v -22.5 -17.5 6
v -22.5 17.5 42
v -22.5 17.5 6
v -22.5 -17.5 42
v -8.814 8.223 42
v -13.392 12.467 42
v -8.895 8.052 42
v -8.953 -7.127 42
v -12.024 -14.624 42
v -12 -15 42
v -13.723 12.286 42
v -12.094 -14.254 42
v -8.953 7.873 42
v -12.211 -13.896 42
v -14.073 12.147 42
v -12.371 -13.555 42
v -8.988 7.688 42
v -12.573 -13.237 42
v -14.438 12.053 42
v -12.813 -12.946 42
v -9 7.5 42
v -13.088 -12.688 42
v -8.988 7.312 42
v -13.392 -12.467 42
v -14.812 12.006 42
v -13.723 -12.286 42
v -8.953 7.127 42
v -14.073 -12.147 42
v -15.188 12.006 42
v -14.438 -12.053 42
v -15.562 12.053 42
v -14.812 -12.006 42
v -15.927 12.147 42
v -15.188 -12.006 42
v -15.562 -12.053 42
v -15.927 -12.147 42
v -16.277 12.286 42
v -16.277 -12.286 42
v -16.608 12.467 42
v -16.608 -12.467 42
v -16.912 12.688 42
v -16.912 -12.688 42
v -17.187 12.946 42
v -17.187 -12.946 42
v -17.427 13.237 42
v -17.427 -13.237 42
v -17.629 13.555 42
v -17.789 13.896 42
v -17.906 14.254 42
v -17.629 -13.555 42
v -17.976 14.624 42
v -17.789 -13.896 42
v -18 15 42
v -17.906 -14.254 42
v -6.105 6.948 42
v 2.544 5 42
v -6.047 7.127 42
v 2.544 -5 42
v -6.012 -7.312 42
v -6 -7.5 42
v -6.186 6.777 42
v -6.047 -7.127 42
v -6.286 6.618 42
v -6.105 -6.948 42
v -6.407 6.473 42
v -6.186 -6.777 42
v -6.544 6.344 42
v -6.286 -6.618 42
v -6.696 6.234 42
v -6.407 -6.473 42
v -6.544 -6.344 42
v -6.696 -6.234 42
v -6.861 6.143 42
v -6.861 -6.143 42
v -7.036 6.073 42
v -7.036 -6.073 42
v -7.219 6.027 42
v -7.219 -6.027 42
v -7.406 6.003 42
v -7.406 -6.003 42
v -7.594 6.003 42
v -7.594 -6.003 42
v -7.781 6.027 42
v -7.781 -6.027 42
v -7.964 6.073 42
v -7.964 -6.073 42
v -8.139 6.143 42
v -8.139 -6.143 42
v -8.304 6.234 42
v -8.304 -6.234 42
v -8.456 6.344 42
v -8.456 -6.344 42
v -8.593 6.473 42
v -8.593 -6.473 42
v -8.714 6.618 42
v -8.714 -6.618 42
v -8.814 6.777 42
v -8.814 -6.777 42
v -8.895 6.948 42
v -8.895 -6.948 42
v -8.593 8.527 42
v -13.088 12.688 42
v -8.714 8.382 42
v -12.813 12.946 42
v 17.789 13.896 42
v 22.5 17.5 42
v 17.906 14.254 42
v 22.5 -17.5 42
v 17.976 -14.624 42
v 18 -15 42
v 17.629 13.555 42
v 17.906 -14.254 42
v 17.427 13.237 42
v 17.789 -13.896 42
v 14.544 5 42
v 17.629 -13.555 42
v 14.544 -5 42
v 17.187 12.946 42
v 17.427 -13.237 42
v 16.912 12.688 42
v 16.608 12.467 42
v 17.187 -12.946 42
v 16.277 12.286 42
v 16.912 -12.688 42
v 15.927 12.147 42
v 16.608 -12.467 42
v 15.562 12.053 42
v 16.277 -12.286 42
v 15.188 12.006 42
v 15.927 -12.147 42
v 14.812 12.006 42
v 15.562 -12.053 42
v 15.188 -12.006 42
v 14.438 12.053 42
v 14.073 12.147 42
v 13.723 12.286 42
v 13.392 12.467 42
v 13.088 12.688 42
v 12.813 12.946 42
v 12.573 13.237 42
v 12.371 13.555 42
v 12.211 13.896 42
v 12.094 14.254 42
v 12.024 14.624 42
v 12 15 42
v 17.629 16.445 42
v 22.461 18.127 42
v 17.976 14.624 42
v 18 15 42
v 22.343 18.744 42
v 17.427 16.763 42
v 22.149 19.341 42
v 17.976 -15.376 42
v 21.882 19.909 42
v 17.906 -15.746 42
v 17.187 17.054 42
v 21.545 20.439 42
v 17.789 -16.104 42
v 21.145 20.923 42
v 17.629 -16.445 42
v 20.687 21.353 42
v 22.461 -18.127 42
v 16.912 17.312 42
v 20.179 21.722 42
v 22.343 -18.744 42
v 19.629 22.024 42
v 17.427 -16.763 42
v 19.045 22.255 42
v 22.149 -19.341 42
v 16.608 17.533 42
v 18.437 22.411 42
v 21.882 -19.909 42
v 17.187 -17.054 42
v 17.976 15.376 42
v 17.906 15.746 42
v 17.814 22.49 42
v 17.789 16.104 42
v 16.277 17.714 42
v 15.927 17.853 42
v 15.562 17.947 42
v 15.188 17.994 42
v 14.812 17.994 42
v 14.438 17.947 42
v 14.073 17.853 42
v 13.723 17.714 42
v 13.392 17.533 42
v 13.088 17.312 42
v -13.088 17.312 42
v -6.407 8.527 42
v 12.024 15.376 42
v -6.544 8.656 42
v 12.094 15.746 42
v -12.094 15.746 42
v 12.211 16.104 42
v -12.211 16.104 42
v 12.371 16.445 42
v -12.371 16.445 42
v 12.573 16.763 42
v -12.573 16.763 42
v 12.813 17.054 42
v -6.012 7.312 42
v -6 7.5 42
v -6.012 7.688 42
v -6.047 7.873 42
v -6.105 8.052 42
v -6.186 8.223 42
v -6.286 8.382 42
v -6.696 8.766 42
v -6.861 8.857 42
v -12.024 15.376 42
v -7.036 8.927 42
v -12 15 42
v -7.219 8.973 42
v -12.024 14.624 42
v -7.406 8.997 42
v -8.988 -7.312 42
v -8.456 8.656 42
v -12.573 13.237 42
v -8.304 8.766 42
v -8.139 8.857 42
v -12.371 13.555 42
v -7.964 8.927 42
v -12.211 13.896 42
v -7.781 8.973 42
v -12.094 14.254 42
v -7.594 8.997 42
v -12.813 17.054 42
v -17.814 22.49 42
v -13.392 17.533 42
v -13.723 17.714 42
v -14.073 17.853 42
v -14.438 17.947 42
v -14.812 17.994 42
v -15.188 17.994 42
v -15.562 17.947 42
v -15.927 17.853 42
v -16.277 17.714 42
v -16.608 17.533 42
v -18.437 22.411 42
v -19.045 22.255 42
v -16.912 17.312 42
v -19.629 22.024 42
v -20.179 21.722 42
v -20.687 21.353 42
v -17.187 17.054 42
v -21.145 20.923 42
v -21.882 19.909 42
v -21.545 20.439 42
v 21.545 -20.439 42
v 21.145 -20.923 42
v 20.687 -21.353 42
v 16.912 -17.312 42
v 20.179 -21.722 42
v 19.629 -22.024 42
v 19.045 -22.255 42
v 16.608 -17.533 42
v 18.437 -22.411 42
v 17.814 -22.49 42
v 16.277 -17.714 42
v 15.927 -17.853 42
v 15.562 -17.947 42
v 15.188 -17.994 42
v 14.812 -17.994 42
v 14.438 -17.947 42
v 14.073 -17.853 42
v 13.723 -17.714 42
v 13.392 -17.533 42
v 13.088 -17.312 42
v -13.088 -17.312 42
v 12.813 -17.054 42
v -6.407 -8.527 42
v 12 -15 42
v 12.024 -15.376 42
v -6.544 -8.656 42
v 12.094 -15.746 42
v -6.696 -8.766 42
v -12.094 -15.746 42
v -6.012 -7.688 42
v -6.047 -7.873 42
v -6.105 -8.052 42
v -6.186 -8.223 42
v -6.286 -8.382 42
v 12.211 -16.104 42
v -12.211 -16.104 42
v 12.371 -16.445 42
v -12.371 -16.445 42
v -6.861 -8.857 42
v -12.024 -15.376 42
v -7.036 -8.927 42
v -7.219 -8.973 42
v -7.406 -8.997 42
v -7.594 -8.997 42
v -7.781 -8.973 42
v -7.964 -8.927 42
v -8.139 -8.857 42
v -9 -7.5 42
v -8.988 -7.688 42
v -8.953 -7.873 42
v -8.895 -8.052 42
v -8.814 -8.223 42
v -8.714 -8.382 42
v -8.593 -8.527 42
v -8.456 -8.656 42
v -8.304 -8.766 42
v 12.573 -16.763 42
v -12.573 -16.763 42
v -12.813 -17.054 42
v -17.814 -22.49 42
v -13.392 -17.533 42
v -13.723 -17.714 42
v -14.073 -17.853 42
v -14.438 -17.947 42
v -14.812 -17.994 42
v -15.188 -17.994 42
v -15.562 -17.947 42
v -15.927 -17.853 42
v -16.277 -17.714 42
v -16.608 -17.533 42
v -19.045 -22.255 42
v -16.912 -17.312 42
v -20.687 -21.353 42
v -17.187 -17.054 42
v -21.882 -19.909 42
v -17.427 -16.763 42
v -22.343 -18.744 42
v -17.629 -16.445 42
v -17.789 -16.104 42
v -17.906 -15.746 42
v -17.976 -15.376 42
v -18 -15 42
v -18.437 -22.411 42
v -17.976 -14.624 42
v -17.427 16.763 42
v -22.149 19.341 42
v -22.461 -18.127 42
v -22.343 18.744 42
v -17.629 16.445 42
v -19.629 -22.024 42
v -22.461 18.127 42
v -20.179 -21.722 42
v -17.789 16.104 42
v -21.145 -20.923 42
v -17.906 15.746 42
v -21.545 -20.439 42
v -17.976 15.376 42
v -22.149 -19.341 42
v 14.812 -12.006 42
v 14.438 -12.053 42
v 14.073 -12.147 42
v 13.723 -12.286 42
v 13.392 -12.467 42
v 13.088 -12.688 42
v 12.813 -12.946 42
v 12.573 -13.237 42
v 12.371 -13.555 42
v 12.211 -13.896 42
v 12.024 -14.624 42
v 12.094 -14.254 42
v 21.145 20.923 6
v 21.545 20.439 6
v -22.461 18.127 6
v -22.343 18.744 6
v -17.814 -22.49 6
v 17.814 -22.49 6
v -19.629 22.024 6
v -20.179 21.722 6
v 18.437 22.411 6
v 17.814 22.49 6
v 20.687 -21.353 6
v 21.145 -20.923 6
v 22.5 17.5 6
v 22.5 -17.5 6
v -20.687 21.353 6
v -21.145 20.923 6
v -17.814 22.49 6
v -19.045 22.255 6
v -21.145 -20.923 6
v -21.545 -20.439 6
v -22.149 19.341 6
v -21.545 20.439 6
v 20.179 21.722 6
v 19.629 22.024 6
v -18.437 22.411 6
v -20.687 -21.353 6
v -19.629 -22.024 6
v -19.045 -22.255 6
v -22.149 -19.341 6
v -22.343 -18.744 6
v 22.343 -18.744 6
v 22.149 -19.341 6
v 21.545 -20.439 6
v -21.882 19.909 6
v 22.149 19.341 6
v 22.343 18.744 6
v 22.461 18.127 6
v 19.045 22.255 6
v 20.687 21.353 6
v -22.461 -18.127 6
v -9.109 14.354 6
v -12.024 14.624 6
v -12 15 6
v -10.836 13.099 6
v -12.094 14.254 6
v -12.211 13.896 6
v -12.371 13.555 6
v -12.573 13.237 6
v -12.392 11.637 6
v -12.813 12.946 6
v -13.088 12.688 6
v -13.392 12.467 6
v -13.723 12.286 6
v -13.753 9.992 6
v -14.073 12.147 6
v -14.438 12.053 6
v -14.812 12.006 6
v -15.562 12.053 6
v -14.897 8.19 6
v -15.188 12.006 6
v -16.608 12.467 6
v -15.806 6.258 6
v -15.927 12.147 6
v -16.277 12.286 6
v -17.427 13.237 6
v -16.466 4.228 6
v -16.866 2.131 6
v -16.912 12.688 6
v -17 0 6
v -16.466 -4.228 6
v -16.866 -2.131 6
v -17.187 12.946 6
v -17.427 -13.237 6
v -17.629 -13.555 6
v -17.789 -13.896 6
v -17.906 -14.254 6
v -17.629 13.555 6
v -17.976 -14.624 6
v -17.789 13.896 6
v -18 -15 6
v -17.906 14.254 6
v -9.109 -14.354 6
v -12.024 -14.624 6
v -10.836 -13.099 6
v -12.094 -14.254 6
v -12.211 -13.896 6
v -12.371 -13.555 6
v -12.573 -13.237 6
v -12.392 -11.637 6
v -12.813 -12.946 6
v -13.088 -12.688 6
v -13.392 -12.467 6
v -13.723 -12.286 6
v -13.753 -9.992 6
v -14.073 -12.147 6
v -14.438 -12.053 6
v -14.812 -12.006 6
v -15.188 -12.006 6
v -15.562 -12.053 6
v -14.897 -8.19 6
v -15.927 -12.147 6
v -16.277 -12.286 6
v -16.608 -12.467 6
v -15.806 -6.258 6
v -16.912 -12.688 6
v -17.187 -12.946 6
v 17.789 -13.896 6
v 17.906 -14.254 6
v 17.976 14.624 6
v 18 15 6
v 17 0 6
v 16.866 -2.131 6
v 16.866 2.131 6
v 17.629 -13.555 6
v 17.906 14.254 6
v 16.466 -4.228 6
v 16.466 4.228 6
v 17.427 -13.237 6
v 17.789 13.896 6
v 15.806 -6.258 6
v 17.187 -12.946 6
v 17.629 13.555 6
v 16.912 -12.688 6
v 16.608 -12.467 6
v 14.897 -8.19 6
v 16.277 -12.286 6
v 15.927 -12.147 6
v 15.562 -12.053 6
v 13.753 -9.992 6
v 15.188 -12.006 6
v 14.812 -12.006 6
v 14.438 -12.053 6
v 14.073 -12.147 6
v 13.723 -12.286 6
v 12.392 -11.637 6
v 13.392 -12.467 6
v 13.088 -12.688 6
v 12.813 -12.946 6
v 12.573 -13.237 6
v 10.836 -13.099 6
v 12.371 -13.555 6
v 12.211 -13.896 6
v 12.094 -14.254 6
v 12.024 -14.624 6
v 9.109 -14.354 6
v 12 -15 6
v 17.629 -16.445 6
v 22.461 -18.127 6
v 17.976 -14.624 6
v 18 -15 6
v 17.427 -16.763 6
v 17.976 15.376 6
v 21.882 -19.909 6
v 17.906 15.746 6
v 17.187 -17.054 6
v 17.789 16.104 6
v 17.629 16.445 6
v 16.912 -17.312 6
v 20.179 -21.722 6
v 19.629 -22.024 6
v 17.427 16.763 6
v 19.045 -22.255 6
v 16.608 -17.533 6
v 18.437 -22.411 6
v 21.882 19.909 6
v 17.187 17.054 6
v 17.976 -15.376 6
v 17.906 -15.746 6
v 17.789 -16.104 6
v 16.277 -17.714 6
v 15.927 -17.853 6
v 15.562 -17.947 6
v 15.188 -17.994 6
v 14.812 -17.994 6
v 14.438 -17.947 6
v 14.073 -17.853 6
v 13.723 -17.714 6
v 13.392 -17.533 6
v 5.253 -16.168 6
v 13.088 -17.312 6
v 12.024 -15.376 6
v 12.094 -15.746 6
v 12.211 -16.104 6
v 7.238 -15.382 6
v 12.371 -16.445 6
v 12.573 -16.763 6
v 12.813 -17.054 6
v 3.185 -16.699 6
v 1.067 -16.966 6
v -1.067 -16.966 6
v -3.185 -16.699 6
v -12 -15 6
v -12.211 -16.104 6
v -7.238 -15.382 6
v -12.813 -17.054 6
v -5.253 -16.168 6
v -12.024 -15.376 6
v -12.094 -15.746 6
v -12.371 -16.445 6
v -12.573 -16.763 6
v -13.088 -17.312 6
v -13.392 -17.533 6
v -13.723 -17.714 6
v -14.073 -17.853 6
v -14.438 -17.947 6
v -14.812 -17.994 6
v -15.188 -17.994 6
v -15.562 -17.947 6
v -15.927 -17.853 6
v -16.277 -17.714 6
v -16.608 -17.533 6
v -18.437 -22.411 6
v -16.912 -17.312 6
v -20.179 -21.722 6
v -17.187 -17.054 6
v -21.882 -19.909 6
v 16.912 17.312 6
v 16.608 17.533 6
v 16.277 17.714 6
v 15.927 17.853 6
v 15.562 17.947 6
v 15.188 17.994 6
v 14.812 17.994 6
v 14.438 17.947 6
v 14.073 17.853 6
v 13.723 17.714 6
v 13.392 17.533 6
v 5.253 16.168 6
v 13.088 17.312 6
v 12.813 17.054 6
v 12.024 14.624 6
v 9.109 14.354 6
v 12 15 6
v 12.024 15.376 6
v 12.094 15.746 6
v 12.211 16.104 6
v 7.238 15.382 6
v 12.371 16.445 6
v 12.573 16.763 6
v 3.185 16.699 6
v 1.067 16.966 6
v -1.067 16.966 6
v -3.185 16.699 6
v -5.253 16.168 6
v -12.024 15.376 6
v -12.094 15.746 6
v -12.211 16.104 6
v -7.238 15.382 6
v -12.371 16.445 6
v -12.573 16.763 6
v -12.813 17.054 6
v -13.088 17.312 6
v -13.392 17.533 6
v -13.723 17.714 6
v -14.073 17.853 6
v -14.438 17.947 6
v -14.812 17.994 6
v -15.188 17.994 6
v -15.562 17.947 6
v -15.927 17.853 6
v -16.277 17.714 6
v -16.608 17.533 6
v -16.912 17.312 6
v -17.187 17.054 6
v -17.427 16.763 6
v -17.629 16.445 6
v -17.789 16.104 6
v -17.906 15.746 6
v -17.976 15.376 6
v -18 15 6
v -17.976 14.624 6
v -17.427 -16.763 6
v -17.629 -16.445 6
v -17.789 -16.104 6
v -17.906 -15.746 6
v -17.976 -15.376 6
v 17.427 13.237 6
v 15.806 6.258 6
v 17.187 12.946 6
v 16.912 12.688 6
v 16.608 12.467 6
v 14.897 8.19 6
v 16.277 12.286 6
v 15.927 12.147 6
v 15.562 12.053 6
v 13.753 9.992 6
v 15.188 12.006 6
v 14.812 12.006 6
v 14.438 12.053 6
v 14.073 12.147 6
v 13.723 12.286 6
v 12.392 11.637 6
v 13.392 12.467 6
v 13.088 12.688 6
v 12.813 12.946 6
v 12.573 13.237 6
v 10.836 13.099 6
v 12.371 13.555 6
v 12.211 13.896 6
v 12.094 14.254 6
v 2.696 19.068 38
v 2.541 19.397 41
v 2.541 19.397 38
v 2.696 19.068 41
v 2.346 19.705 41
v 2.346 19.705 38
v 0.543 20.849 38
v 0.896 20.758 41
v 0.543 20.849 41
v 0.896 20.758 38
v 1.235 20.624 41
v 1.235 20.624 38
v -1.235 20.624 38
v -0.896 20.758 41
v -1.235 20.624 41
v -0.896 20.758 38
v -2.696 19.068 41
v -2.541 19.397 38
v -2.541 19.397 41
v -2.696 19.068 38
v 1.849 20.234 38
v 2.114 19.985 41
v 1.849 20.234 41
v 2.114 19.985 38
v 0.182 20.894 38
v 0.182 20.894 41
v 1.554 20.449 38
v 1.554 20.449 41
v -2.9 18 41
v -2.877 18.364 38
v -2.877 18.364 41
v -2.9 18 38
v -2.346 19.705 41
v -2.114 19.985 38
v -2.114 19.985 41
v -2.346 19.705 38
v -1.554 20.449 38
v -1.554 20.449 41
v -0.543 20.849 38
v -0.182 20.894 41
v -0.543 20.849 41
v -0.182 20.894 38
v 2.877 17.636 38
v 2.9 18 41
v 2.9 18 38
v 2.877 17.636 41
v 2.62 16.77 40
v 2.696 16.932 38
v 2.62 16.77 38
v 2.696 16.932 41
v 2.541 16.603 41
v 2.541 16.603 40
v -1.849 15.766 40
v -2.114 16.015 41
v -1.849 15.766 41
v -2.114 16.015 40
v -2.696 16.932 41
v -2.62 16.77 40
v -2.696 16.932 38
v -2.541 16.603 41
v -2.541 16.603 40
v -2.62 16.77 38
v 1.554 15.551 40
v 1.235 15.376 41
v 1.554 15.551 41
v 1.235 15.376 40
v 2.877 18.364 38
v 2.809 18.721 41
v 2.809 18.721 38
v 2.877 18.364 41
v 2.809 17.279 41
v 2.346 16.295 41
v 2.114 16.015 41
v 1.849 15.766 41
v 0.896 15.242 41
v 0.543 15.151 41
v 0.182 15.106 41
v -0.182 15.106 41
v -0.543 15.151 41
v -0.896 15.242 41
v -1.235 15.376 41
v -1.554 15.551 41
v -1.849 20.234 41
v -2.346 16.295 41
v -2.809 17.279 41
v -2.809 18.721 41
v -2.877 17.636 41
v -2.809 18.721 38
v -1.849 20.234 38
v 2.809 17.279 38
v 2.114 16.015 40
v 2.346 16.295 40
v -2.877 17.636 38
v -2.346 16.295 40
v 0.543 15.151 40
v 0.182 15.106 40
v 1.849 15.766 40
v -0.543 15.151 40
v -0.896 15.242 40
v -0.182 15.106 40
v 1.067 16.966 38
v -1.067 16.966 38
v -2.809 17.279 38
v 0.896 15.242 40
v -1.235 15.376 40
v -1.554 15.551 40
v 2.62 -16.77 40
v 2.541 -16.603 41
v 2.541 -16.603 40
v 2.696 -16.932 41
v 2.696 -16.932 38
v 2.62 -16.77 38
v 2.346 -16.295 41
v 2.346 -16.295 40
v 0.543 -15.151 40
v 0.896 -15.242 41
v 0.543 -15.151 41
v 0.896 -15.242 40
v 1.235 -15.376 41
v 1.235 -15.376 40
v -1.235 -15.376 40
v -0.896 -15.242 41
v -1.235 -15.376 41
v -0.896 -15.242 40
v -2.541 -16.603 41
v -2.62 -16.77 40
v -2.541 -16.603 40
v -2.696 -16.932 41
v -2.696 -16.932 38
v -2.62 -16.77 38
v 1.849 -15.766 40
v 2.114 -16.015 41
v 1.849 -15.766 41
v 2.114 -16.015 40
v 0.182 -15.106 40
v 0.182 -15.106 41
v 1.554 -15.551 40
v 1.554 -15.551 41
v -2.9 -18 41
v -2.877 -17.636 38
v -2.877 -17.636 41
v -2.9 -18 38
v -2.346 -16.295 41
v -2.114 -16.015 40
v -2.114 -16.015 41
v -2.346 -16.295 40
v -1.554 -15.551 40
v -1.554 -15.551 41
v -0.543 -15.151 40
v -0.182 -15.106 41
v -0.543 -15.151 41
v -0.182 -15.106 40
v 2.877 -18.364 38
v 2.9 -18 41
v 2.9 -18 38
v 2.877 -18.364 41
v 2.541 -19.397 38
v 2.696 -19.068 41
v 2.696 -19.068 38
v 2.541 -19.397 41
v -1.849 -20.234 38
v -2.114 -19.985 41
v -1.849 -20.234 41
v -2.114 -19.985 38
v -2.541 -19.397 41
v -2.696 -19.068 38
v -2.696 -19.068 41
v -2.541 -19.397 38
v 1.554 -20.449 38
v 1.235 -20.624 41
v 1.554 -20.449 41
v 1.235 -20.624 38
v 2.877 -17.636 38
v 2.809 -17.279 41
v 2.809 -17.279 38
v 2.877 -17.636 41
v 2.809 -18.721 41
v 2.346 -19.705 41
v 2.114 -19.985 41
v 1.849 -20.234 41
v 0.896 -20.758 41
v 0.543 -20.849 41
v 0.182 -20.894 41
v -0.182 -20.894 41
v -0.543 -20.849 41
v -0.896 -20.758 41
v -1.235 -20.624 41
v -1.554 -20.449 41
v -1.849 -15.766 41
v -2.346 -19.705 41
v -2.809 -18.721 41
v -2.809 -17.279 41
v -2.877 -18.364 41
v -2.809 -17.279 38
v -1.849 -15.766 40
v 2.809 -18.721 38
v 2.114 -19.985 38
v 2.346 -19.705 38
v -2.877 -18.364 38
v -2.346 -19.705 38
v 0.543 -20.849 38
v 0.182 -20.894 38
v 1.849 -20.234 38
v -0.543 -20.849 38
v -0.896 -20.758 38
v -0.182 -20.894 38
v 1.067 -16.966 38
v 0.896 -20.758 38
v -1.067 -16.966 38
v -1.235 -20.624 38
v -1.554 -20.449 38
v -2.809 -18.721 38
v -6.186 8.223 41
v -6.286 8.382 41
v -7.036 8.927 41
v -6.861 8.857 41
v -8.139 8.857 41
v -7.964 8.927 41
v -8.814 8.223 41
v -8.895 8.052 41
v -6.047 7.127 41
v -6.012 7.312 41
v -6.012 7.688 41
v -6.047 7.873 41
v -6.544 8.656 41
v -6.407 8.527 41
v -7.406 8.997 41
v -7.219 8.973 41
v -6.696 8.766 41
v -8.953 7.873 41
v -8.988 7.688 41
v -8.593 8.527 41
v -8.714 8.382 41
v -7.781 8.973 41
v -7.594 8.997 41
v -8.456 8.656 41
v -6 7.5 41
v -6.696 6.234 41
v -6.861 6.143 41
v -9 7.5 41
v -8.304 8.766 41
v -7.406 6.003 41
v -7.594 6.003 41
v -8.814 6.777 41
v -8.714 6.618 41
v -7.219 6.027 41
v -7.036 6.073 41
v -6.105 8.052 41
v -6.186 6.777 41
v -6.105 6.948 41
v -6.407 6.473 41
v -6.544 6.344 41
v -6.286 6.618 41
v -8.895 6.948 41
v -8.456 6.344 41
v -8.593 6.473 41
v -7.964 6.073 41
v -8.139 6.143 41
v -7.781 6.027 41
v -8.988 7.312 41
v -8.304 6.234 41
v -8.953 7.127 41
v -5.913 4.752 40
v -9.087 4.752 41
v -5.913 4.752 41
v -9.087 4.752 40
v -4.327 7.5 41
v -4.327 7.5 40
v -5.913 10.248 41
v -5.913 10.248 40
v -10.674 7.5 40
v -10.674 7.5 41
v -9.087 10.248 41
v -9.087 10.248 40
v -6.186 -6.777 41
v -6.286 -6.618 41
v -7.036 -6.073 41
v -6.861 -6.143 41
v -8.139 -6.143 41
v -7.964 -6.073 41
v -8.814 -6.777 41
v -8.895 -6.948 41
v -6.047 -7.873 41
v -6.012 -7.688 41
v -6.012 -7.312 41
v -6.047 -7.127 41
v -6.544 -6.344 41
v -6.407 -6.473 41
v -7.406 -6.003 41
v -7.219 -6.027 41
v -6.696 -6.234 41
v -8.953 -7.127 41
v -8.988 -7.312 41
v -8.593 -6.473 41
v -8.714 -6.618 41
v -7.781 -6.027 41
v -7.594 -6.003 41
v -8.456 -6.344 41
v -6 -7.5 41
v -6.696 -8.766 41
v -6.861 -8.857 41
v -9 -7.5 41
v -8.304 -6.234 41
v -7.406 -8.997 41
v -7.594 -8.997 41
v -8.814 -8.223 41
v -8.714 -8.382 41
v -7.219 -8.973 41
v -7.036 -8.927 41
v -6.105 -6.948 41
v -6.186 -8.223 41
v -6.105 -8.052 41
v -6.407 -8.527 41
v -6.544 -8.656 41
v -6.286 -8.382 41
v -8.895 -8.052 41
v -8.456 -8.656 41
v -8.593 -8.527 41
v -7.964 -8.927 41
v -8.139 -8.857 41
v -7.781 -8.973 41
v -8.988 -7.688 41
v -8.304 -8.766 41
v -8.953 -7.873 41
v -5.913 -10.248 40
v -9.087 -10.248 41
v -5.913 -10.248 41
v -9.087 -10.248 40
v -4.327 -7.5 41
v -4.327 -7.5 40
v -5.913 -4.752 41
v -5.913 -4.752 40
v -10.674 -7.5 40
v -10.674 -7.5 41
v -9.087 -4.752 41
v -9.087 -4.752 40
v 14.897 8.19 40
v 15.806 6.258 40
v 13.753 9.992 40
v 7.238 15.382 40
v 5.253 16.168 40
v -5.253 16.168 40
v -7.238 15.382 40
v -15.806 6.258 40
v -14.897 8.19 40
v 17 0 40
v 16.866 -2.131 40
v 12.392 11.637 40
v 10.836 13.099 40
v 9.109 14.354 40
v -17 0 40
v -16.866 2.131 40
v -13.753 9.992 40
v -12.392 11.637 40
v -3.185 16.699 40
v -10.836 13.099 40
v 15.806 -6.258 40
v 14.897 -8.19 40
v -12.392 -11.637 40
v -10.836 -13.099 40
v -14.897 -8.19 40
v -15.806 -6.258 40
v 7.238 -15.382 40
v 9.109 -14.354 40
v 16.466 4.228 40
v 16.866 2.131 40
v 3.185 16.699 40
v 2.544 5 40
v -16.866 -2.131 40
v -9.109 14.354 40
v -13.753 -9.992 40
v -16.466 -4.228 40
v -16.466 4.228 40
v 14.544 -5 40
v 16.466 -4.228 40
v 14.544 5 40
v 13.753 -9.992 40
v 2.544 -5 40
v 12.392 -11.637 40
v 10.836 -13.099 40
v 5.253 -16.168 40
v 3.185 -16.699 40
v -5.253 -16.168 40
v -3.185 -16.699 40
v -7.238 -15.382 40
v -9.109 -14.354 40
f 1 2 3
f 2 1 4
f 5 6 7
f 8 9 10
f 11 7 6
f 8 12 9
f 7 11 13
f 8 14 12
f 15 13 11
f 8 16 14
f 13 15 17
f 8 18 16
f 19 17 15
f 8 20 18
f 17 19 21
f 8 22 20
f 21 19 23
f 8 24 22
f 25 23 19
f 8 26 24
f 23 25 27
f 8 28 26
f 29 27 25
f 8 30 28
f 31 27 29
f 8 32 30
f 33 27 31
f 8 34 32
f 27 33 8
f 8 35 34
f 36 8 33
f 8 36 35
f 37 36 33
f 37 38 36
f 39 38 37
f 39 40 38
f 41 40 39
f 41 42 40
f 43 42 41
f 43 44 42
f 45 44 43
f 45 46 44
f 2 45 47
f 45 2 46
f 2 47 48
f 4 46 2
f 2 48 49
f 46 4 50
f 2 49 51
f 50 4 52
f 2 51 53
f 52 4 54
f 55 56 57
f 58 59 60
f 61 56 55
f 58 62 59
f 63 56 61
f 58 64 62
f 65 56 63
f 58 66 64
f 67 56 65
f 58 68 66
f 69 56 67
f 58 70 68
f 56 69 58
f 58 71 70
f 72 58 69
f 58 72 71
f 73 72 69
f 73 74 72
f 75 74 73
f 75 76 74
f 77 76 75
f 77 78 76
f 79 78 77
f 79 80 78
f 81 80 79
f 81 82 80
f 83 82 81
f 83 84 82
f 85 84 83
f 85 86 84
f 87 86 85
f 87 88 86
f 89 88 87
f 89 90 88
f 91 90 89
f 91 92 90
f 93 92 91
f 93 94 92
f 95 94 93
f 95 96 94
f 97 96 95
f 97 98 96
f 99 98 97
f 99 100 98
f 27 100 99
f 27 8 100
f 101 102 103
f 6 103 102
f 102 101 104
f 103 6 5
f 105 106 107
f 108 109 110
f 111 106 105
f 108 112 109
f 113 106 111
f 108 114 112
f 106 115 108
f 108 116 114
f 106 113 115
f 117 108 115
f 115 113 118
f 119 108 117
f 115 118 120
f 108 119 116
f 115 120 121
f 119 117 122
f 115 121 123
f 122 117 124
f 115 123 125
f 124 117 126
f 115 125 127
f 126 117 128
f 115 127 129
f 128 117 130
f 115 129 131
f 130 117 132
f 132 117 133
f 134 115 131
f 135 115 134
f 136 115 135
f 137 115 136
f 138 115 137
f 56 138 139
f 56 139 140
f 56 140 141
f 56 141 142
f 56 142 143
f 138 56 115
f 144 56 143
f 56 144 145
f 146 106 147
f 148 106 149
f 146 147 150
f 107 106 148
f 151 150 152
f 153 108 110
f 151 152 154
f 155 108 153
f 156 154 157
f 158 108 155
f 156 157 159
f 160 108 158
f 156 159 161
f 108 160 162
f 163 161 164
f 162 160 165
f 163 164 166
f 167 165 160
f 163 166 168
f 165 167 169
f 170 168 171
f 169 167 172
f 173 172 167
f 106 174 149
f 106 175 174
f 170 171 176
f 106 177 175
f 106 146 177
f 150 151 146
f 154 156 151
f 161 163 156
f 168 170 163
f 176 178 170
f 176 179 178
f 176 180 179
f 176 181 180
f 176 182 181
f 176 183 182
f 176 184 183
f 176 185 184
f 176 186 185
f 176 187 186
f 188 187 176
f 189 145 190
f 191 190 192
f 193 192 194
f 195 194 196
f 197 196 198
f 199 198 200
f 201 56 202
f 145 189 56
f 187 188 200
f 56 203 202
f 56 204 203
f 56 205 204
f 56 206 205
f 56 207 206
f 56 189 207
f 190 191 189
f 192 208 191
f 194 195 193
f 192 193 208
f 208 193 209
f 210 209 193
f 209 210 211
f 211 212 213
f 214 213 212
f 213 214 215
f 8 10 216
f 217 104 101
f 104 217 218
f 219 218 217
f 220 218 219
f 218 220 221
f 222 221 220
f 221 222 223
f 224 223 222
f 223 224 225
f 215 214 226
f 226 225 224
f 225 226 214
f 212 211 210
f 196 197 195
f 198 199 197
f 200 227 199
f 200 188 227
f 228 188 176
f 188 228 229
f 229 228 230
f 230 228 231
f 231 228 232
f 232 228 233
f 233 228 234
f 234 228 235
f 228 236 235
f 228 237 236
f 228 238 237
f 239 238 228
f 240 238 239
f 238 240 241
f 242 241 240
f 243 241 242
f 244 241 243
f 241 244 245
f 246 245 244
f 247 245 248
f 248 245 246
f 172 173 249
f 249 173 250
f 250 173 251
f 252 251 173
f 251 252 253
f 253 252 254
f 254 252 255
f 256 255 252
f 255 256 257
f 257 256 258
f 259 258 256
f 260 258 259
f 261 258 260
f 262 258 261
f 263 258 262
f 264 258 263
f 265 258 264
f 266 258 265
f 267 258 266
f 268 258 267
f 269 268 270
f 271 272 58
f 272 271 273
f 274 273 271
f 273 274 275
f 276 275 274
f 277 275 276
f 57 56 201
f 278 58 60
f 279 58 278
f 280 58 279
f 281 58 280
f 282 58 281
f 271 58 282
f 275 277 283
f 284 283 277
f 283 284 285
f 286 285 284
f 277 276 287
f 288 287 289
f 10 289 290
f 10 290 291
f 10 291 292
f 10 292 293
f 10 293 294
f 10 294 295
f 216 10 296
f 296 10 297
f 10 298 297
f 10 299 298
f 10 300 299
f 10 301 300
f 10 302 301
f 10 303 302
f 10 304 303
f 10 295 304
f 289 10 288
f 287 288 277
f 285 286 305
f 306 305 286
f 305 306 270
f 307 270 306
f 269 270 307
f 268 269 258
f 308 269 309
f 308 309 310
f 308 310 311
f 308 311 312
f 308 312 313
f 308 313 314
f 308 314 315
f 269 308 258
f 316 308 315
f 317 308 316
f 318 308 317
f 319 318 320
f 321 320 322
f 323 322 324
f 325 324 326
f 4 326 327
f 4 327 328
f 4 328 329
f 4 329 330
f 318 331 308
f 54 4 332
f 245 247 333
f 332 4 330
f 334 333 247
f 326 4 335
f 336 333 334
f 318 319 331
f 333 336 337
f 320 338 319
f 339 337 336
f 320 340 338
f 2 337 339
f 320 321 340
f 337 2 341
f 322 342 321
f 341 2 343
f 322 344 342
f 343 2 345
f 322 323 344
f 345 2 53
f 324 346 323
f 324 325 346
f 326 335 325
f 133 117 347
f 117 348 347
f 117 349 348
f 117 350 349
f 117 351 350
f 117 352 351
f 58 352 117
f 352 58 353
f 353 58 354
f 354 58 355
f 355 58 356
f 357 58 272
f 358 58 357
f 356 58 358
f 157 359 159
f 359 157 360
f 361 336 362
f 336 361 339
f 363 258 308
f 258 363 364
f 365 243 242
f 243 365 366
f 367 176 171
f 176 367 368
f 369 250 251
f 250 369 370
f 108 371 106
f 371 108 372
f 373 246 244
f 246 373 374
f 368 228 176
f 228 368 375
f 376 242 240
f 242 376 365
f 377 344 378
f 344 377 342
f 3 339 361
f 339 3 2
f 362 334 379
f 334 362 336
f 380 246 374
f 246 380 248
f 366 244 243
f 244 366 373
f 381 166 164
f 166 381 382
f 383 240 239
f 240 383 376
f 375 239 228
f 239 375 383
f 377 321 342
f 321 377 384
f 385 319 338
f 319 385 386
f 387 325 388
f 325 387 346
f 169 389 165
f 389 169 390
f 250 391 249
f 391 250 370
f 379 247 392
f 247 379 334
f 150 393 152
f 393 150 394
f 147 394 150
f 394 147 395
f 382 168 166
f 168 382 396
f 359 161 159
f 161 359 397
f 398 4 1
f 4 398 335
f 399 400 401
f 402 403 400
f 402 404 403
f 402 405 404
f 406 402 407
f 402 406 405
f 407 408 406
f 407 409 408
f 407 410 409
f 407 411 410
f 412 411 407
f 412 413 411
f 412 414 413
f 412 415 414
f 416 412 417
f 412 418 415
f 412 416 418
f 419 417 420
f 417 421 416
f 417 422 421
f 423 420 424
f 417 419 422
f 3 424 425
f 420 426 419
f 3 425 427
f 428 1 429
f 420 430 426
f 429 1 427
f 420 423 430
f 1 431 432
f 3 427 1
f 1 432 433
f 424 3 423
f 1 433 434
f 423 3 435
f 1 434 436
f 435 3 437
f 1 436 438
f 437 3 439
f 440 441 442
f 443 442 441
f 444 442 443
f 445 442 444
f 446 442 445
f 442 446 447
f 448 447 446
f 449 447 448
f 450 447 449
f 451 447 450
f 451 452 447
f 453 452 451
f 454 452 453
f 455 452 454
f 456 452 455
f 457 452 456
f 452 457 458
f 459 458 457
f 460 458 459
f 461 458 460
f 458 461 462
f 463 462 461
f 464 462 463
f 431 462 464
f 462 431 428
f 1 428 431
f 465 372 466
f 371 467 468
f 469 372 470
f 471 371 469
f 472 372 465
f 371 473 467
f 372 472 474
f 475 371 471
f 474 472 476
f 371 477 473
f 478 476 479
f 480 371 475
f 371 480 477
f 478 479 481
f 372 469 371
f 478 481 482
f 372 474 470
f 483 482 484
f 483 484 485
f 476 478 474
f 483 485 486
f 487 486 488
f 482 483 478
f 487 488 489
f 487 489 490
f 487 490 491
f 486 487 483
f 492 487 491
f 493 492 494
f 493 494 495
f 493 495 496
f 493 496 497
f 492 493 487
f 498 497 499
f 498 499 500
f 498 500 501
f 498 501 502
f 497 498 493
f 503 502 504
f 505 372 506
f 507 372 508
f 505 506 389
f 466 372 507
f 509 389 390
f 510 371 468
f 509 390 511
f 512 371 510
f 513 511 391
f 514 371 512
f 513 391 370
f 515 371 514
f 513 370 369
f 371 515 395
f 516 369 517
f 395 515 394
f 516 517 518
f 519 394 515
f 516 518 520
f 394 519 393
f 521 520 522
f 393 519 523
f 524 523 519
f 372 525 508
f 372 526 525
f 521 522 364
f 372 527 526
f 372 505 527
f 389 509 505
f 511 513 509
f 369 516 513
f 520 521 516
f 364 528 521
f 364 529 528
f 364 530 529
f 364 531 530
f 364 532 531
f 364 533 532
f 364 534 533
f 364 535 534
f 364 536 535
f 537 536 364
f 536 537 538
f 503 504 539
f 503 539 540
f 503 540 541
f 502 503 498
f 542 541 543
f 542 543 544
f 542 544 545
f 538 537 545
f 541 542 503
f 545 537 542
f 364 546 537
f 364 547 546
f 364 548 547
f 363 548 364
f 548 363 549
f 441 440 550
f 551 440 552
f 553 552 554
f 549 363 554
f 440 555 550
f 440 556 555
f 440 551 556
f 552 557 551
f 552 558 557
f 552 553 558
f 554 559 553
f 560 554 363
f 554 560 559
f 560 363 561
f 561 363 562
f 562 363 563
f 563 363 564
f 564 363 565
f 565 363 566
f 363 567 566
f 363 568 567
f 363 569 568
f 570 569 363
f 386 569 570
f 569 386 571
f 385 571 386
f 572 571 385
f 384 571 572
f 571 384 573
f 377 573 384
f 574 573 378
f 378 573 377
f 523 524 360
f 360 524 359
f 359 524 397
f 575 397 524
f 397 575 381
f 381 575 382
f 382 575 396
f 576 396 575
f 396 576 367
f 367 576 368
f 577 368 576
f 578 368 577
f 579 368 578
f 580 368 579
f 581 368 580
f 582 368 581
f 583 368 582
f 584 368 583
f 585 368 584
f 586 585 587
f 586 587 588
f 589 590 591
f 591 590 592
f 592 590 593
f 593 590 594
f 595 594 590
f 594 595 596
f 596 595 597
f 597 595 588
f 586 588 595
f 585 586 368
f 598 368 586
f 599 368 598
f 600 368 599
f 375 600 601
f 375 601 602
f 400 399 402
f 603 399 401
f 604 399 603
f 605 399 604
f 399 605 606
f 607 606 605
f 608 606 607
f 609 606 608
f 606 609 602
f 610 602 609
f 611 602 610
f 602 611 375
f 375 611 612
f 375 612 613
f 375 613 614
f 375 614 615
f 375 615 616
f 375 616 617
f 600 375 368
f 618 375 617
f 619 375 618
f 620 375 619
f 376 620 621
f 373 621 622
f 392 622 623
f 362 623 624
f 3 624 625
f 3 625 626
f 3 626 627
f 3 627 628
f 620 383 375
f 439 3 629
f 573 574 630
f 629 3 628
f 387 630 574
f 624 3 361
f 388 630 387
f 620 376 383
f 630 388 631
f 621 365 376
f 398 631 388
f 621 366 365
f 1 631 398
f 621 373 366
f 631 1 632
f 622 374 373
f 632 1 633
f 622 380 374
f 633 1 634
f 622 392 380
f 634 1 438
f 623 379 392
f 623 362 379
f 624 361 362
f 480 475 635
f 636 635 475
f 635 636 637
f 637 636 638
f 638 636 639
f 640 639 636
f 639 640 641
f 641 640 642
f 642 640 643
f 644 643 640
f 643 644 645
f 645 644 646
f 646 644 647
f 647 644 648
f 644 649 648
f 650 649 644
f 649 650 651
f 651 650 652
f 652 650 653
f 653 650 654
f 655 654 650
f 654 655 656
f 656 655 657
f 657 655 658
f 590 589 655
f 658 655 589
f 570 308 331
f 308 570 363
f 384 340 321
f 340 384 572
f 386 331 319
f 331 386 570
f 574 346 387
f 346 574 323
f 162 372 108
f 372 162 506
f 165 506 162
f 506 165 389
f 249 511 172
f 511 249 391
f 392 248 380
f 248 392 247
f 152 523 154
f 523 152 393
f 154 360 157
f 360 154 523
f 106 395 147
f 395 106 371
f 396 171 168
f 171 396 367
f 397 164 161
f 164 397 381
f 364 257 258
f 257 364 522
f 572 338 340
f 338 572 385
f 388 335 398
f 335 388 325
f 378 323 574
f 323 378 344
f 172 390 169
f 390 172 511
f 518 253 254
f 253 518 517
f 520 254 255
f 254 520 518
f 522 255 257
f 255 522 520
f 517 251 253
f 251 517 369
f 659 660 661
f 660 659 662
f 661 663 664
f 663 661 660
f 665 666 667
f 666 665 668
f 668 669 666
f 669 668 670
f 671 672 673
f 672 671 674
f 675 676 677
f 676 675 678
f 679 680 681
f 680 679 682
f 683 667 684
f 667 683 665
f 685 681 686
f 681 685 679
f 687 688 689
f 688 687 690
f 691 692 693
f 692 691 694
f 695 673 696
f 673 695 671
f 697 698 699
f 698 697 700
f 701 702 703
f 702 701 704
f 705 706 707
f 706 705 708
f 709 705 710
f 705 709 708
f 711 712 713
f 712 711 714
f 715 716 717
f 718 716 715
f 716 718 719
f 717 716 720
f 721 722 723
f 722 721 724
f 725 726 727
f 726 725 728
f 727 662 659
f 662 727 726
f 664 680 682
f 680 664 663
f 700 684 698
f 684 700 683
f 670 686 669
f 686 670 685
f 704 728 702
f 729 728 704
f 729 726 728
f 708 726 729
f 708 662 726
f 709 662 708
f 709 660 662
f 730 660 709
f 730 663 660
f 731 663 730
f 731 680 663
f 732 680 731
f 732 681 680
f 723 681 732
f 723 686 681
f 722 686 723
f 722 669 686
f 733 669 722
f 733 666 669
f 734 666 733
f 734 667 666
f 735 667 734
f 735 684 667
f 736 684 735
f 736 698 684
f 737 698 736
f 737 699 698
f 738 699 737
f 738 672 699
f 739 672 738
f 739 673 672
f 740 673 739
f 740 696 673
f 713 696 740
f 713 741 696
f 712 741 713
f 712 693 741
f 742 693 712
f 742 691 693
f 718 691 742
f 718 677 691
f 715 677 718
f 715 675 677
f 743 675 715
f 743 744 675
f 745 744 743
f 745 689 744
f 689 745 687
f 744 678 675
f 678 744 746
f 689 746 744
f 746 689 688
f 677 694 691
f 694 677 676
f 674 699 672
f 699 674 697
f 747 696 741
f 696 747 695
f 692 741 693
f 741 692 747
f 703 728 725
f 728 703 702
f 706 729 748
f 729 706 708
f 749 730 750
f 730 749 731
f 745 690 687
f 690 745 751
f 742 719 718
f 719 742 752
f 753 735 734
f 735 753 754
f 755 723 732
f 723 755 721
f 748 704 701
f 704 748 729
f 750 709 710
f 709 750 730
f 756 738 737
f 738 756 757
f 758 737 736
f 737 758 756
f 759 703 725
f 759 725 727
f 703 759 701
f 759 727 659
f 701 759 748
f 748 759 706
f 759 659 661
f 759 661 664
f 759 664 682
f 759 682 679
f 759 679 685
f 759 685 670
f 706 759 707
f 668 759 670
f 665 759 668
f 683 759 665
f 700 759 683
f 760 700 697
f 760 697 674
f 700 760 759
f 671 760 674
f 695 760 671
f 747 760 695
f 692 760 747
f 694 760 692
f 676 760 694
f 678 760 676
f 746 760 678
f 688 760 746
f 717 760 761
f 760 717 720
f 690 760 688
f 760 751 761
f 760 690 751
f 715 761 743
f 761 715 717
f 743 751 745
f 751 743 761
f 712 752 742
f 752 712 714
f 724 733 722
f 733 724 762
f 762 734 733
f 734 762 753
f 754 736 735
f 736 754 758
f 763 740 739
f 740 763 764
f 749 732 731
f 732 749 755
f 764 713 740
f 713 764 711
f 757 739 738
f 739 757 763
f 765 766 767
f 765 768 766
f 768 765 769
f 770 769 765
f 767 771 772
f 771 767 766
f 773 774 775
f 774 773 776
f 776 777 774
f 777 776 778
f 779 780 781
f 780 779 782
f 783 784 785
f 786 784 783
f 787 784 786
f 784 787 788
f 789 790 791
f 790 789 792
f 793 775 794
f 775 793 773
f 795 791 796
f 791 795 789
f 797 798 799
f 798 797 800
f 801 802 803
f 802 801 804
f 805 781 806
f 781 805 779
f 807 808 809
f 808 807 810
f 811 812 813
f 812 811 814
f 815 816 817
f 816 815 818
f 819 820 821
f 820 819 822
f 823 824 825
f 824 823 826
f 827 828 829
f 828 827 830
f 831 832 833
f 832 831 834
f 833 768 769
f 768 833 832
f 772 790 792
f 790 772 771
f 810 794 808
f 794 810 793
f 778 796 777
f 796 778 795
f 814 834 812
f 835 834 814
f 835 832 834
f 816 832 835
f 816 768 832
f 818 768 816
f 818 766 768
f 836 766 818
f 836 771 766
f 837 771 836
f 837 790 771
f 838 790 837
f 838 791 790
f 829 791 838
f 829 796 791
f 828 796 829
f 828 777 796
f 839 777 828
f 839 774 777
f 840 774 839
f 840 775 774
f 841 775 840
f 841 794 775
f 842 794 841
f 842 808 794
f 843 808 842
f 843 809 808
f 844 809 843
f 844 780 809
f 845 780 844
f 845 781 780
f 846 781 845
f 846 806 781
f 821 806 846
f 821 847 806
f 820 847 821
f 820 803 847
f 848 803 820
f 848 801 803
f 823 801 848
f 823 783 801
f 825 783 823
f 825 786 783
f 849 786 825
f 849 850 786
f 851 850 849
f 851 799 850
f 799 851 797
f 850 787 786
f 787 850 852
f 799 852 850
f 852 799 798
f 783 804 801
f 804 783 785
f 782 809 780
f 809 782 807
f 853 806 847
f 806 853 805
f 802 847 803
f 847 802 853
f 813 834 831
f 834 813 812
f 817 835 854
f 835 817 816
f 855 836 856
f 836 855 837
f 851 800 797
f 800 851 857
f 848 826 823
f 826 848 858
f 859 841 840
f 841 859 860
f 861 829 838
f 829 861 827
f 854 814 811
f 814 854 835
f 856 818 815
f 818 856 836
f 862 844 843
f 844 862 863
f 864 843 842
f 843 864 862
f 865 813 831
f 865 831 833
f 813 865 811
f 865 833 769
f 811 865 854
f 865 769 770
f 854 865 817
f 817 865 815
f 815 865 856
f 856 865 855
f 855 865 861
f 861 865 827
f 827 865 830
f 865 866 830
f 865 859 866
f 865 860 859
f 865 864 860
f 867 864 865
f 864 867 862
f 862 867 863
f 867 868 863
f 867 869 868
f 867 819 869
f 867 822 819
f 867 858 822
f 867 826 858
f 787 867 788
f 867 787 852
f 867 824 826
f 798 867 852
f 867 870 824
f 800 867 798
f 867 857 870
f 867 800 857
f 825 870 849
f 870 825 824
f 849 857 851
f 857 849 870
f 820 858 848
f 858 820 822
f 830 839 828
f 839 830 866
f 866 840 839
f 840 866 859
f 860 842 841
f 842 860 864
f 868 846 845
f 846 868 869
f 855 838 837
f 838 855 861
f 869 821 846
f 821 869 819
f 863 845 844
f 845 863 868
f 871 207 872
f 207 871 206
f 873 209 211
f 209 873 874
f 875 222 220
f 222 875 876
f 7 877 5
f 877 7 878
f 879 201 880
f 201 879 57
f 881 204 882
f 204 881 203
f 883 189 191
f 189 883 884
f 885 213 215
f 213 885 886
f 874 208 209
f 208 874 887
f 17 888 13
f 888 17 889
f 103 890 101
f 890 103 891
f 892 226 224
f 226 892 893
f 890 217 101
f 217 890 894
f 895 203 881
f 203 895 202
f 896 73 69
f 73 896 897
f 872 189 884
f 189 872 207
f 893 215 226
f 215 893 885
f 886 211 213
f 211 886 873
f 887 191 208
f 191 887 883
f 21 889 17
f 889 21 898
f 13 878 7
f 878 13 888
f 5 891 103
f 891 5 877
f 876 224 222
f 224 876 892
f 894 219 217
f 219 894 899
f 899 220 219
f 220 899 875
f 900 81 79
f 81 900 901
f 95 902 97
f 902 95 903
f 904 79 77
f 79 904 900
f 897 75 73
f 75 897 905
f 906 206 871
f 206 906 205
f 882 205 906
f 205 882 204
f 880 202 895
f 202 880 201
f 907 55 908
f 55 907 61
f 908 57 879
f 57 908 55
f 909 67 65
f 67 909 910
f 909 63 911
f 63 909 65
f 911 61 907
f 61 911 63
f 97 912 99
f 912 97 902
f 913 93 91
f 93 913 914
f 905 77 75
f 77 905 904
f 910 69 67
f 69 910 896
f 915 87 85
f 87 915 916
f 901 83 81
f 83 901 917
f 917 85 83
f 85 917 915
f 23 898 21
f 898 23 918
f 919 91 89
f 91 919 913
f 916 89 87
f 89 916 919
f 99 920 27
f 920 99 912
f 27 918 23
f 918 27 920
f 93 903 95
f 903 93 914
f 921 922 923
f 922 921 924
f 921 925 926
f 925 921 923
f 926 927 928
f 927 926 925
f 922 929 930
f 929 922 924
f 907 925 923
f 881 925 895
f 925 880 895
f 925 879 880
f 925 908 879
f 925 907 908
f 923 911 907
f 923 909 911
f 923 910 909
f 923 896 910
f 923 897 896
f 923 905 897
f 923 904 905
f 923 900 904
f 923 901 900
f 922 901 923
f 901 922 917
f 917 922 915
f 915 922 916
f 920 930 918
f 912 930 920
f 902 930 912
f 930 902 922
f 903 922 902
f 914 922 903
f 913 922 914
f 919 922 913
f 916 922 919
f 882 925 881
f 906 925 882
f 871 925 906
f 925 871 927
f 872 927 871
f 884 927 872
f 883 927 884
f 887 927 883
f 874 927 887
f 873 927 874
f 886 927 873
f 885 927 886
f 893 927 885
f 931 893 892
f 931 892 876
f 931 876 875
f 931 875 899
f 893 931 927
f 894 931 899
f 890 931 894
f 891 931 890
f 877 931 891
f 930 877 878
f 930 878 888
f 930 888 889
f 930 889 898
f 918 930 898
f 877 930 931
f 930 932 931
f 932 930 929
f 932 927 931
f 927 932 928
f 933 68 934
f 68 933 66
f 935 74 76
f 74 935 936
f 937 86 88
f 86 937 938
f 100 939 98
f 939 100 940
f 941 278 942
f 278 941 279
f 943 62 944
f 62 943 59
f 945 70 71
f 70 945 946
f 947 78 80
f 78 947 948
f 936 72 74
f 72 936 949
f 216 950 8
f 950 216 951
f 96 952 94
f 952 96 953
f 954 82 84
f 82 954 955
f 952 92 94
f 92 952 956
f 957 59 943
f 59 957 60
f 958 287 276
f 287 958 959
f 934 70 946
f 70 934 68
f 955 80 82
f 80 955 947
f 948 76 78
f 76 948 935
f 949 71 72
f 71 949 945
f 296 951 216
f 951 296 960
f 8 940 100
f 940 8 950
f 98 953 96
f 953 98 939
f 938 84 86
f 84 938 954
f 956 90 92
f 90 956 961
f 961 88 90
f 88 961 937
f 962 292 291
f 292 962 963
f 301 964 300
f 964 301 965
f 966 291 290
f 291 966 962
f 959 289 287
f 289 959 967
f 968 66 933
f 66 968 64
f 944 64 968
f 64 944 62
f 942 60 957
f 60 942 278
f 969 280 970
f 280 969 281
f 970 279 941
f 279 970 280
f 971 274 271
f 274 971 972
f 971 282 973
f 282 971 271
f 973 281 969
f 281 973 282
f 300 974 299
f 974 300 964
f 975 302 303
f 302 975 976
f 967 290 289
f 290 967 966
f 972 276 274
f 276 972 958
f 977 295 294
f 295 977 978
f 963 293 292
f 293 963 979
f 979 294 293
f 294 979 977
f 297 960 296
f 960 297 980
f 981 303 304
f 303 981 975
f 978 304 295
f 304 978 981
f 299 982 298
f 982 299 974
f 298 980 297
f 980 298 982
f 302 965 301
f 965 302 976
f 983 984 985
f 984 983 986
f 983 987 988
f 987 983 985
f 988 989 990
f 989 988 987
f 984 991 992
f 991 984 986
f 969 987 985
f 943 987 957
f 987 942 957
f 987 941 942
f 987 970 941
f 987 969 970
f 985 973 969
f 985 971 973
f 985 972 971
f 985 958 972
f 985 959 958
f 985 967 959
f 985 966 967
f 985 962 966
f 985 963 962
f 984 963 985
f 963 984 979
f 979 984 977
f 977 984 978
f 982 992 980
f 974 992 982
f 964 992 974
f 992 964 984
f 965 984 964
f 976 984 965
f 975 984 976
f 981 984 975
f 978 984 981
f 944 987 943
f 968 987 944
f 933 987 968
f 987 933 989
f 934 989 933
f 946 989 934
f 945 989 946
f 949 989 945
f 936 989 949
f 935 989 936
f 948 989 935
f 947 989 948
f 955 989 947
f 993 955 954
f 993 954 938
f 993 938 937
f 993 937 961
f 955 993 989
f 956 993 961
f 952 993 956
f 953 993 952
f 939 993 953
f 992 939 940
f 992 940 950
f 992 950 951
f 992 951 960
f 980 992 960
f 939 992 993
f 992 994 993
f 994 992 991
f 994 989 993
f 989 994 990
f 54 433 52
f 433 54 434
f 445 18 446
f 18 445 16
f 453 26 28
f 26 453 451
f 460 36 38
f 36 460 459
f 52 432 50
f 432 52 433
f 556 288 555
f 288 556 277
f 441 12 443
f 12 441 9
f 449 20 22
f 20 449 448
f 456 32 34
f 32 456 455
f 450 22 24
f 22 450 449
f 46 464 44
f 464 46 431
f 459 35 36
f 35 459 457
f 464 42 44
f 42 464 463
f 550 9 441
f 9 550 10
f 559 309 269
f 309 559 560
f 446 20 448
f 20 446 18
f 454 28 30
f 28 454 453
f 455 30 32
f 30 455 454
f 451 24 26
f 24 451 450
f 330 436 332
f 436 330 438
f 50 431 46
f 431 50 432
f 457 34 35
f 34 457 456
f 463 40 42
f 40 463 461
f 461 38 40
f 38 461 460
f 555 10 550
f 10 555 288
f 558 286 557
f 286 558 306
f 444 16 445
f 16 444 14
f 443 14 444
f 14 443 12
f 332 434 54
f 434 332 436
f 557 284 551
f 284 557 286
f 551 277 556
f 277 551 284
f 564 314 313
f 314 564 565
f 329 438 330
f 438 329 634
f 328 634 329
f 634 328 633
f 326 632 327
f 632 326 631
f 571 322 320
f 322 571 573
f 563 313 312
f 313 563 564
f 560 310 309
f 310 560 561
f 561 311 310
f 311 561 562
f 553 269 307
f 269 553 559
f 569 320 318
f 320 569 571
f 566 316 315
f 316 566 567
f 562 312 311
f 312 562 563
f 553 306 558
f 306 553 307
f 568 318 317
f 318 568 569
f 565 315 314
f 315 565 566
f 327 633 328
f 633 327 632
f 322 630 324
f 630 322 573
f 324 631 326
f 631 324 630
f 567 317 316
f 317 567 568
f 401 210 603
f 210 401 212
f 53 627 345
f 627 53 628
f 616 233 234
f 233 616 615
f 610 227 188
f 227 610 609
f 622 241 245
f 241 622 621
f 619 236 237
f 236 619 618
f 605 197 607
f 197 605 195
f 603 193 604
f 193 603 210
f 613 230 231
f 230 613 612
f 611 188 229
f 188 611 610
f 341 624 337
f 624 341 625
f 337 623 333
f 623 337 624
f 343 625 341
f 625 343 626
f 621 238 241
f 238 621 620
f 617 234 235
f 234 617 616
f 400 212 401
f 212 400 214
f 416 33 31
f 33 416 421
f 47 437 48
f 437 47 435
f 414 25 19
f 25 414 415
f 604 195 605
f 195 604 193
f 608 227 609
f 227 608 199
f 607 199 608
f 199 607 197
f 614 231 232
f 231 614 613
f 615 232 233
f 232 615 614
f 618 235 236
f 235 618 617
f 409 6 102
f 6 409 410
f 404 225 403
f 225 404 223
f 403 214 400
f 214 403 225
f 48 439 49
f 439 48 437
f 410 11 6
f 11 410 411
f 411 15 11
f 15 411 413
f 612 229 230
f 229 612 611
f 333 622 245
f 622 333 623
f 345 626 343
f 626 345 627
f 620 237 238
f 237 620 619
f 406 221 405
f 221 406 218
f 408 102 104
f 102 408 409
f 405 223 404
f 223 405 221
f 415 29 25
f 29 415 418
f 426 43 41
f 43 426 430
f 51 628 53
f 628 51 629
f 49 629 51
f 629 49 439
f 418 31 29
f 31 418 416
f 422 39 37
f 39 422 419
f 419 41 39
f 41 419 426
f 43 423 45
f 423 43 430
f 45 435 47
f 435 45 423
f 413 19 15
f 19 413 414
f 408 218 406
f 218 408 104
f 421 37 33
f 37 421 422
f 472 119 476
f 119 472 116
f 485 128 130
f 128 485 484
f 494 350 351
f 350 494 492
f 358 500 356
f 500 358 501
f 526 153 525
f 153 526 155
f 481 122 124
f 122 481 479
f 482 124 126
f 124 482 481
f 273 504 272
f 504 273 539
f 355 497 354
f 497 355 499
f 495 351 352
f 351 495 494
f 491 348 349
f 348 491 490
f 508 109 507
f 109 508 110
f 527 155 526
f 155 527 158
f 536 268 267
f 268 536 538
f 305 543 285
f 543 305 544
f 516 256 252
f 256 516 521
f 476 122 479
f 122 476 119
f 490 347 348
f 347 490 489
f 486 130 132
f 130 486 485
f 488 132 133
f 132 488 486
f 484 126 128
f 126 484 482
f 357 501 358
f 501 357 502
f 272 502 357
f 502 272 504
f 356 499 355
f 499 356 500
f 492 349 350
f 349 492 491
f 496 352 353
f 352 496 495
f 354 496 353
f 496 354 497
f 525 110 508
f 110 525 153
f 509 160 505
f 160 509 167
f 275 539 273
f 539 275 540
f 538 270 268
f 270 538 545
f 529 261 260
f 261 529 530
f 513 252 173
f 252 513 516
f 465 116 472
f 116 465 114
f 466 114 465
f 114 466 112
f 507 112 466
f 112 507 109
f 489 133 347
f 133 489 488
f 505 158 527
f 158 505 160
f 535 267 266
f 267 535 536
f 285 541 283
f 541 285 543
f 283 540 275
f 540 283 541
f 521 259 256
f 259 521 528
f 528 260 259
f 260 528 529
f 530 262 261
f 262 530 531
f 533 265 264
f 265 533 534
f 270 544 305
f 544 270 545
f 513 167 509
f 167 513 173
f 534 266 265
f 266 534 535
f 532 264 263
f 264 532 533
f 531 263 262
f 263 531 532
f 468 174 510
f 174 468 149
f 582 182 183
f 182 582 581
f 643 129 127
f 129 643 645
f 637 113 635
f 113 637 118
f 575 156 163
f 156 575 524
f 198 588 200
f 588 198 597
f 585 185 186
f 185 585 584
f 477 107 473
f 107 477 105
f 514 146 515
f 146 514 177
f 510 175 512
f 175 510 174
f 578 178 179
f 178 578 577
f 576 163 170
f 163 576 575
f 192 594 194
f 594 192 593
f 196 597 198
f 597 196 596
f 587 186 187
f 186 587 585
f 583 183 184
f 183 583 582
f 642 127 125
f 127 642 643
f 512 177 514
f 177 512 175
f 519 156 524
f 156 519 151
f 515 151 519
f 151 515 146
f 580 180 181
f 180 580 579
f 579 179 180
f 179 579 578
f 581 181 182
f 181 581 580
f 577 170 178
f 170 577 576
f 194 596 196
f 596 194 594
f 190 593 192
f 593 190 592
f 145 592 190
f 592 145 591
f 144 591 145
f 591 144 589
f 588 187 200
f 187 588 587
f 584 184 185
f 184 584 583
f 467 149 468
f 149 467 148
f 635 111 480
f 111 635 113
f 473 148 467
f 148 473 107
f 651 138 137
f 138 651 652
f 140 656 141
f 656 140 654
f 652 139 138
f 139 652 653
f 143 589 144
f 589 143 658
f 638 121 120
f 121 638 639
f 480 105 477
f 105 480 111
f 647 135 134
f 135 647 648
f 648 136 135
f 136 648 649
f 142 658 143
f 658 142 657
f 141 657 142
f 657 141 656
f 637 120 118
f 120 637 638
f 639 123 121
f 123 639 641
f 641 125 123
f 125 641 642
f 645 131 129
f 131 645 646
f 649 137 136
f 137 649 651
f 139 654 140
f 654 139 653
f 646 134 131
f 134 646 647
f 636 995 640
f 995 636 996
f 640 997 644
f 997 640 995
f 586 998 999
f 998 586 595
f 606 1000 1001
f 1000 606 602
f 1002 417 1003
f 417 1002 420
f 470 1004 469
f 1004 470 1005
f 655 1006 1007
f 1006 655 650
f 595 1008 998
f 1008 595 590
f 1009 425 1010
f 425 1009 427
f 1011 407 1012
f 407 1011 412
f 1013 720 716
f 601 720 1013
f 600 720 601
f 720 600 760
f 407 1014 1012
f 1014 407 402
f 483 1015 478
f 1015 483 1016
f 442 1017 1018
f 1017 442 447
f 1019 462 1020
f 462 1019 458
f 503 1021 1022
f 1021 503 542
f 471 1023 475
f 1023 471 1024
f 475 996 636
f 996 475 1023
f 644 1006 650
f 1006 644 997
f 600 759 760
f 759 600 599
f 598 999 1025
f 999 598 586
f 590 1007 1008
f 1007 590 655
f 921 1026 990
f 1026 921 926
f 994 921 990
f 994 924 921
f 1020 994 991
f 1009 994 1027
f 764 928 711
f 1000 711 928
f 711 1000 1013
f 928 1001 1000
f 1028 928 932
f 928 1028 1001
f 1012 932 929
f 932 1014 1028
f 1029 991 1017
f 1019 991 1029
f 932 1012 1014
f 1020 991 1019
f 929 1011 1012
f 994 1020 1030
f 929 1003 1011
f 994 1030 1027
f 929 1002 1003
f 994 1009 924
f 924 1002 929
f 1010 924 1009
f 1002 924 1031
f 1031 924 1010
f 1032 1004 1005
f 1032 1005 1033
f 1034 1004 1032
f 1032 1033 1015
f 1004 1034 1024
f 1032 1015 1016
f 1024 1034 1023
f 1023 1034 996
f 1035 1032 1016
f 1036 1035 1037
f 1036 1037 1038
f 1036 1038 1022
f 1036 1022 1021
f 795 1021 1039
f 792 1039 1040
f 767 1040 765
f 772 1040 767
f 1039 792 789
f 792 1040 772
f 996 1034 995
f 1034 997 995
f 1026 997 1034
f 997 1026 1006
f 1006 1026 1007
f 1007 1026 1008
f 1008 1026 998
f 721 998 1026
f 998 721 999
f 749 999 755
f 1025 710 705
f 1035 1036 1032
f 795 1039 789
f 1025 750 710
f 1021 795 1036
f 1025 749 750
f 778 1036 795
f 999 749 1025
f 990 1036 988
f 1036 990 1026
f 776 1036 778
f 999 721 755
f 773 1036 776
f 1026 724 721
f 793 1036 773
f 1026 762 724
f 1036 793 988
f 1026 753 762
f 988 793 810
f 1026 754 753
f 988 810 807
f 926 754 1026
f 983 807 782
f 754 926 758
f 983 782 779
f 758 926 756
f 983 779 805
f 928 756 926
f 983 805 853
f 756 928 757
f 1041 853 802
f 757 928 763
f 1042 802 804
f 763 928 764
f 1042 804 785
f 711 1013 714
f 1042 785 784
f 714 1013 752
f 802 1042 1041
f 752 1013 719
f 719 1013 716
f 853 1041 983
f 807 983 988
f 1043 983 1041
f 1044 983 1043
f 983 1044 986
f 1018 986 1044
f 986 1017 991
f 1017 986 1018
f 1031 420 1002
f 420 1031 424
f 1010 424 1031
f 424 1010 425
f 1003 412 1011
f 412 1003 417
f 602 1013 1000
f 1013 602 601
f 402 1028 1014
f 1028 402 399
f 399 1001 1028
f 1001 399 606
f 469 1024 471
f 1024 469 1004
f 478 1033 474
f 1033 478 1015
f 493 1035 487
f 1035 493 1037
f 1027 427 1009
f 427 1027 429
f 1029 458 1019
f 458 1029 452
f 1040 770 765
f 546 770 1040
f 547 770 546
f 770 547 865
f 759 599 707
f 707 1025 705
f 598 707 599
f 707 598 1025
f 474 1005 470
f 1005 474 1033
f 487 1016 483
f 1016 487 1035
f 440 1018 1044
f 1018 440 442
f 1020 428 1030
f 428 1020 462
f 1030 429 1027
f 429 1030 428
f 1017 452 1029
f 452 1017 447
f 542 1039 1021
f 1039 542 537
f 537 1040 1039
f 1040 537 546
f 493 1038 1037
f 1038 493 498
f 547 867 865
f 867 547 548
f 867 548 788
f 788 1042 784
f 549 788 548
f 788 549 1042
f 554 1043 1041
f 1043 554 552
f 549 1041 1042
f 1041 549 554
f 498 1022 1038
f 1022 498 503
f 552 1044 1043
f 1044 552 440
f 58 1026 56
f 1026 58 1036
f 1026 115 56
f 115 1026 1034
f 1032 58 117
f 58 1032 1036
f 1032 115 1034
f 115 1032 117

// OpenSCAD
$fn = 50;


difference() {
	union() {
		translate(v = [0, 0, 6]) {
			hull() {
				translate(v = [-17.5000000000, 17.5000000000, 0]) {
					cylinder(h = 36, r = 5);
				}
				translate(v = [17.5000000000, 17.5000000000, 0]) {
					cylinder(h = 36, r = 5);
				}
				translate(v = [-17.5000000000, -17.5000000000, 0]) {
					cylinder(h = 36, r = 5);
				}
				translate(v = [17.5000000000, -17.5000000000, 0]) {
					cylinder(h = 36, r = 5);
				}
			}
		}
		translate(v = [0, 0, 6]) {
			hull() {
				translate(v = [-17.5000000000, 17.5000000000, 0]) {
					cylinder(h = 36, r = 5);
				}
				translate(v = [17.5000000000, 17.5000000000, 0]) {
					cylinder(h = 36, r = 5);
				}
				translate(v = [-17.5000000000, -17.5000000000, 0]) {
					cylinder(h = 36, r = 5);
				}
				translate(v = [17.5000000000, -17.5000000000, 0]) {
					cylinder(h = 36, r = 5);
				}
			}
		}
	}
	union() {
		translate(v = [0, 18, 38]) {
			rotate(a = [0, 0, 0]) {
				difference() {
					union() {
						translate(v = [0, 0, -350.0000000000]) {
							cylinder(h = 200, r = 1.5000000000);
						}
						translate(v = [0, 0, -350.0000000000]) {
							cylinder(h = 200, r = 1.8000000000);
						}
						cylinder(h = 3, r = 2.9000000000);
						translate(v = [0, 0, -350.0000000000]) {
							cylinder(h = 200, r = 1.5000000000);
						}
					}
					union();
				}
			}
		}
		translate(v = [0, -18, 38]) {
			rotate(a = [0, 0, 0]) {
				difference() {
					union() {
						translate(v = [0, 0, -350.0000000000]) {
							cylinder(h = 200, r = 1.5000000000);
						}
						translate(v = [0, 0, -350.0000000000]) {
							cylinder(h = 200, r = 1.8000000000);
						}
						cylinder(h = 3, r = 2.9000000000);
						translate(v = [0, 0, -350.0000000000]) {
							cylinder(h = 200, r = 1.5000000000);
						}
					}
					union();
				}
			}
		}
		translate(v = [-7.5000000000, 7.5000000000, 41]) {
			rotate(a = [0, 0, 0]) {
				difference() {
					union() {
						translate(v = [0, 0, -100.0000000000]) {
							cylinder(h = 200, r = 1.5000000000);
						}
						translate(v = [0, 0, -100.0000000000]) {
							cylinder(h = 200, r = 1.5000000000);
						}
						translate(v = [0, 0, -2.5000000000]) {
							linear_extrude(height = 2.5000000000) {
								polygon(points = [[3.1735000000, 0.0000000000], [1.5867500000, 2.7483316189], [-1.5867500000, 2.7483316189], [-3.1735000000, 0.0000000000], [-1.5867500000, -2.7483316189], [1.5867500000, -2.7483316189]]);
							}
						}
						translate(v = [0, 0, -100.0000000000]) {
							cylinder(h = 200, r = 1.5000000000);
						}
					}
					union();
				}
			}
		}
		translate(v = [-7.5000000000, -7.5000000000, 41]) {
			rotate(a = [0, 0, 0]) {
				difference() {
					union() {
						translate(v = [0, 0, -100.0000000000]) {
							cylinder(h = 200, r = 1.5000000000);
						}
						translate(v = [0, 0, -100.0000000000]) {
							cylinder(h = 200, r = 1.5000000000);
						}
						translate(v = [0, 0, -2.5000000000]) {
							linear_extrude(height = 2.5000000000) {
								polygon(points = [[3.1735000000, 0.0000000000], [1.5867500000, 2.7483316189], [-1.5867500000, 2.7483316189], [-3.1735000000, 0.0000000000], [-1.5867500000, -2.7483316189], [1.5867500000, -2.7483316189]]);
							}
						}
						translate(v = [0, 0, -100.0000000000]) {
							cylinder(h = 200, r = 1.5000000000);
						}
					}
					union();
				}
			}
		}
		translate(v = [-15.0000000000, -15.0000000000, -100.0000000000]) {
			cylinder(h = 200, r = 3.0000000000);
		}
		translate(v = [-15.0000000000, 15.0000000000, -100.0000000000]) {
			cylinder(h = 200, r = 3.0000000000);
		}
		translate(v = [15.0000000000, -15.0000000000, -100.0000000000]) {
			cylinder(h = 200, r = 3.0000000000);
		}
		translate(v = [15.0000000000, 15.0000000000, -100.0000000000]) {
			cylinder(h = 200, r = 3.0000000000);
		}
		translate(v = [0, 0, -1.0000000000]) {
			cylinder(h = 41, r = 17.0000000000);
		}
		#translate(v = [2.5440000000, -5.0000000000, 40]) {
			cube(size = [7, 10, 10]);
		}
		#translate(v = [7.5440000000, -5.0000000000, 40]) {
			cube(size = [7, 10, 10]);
		}
	}
}
